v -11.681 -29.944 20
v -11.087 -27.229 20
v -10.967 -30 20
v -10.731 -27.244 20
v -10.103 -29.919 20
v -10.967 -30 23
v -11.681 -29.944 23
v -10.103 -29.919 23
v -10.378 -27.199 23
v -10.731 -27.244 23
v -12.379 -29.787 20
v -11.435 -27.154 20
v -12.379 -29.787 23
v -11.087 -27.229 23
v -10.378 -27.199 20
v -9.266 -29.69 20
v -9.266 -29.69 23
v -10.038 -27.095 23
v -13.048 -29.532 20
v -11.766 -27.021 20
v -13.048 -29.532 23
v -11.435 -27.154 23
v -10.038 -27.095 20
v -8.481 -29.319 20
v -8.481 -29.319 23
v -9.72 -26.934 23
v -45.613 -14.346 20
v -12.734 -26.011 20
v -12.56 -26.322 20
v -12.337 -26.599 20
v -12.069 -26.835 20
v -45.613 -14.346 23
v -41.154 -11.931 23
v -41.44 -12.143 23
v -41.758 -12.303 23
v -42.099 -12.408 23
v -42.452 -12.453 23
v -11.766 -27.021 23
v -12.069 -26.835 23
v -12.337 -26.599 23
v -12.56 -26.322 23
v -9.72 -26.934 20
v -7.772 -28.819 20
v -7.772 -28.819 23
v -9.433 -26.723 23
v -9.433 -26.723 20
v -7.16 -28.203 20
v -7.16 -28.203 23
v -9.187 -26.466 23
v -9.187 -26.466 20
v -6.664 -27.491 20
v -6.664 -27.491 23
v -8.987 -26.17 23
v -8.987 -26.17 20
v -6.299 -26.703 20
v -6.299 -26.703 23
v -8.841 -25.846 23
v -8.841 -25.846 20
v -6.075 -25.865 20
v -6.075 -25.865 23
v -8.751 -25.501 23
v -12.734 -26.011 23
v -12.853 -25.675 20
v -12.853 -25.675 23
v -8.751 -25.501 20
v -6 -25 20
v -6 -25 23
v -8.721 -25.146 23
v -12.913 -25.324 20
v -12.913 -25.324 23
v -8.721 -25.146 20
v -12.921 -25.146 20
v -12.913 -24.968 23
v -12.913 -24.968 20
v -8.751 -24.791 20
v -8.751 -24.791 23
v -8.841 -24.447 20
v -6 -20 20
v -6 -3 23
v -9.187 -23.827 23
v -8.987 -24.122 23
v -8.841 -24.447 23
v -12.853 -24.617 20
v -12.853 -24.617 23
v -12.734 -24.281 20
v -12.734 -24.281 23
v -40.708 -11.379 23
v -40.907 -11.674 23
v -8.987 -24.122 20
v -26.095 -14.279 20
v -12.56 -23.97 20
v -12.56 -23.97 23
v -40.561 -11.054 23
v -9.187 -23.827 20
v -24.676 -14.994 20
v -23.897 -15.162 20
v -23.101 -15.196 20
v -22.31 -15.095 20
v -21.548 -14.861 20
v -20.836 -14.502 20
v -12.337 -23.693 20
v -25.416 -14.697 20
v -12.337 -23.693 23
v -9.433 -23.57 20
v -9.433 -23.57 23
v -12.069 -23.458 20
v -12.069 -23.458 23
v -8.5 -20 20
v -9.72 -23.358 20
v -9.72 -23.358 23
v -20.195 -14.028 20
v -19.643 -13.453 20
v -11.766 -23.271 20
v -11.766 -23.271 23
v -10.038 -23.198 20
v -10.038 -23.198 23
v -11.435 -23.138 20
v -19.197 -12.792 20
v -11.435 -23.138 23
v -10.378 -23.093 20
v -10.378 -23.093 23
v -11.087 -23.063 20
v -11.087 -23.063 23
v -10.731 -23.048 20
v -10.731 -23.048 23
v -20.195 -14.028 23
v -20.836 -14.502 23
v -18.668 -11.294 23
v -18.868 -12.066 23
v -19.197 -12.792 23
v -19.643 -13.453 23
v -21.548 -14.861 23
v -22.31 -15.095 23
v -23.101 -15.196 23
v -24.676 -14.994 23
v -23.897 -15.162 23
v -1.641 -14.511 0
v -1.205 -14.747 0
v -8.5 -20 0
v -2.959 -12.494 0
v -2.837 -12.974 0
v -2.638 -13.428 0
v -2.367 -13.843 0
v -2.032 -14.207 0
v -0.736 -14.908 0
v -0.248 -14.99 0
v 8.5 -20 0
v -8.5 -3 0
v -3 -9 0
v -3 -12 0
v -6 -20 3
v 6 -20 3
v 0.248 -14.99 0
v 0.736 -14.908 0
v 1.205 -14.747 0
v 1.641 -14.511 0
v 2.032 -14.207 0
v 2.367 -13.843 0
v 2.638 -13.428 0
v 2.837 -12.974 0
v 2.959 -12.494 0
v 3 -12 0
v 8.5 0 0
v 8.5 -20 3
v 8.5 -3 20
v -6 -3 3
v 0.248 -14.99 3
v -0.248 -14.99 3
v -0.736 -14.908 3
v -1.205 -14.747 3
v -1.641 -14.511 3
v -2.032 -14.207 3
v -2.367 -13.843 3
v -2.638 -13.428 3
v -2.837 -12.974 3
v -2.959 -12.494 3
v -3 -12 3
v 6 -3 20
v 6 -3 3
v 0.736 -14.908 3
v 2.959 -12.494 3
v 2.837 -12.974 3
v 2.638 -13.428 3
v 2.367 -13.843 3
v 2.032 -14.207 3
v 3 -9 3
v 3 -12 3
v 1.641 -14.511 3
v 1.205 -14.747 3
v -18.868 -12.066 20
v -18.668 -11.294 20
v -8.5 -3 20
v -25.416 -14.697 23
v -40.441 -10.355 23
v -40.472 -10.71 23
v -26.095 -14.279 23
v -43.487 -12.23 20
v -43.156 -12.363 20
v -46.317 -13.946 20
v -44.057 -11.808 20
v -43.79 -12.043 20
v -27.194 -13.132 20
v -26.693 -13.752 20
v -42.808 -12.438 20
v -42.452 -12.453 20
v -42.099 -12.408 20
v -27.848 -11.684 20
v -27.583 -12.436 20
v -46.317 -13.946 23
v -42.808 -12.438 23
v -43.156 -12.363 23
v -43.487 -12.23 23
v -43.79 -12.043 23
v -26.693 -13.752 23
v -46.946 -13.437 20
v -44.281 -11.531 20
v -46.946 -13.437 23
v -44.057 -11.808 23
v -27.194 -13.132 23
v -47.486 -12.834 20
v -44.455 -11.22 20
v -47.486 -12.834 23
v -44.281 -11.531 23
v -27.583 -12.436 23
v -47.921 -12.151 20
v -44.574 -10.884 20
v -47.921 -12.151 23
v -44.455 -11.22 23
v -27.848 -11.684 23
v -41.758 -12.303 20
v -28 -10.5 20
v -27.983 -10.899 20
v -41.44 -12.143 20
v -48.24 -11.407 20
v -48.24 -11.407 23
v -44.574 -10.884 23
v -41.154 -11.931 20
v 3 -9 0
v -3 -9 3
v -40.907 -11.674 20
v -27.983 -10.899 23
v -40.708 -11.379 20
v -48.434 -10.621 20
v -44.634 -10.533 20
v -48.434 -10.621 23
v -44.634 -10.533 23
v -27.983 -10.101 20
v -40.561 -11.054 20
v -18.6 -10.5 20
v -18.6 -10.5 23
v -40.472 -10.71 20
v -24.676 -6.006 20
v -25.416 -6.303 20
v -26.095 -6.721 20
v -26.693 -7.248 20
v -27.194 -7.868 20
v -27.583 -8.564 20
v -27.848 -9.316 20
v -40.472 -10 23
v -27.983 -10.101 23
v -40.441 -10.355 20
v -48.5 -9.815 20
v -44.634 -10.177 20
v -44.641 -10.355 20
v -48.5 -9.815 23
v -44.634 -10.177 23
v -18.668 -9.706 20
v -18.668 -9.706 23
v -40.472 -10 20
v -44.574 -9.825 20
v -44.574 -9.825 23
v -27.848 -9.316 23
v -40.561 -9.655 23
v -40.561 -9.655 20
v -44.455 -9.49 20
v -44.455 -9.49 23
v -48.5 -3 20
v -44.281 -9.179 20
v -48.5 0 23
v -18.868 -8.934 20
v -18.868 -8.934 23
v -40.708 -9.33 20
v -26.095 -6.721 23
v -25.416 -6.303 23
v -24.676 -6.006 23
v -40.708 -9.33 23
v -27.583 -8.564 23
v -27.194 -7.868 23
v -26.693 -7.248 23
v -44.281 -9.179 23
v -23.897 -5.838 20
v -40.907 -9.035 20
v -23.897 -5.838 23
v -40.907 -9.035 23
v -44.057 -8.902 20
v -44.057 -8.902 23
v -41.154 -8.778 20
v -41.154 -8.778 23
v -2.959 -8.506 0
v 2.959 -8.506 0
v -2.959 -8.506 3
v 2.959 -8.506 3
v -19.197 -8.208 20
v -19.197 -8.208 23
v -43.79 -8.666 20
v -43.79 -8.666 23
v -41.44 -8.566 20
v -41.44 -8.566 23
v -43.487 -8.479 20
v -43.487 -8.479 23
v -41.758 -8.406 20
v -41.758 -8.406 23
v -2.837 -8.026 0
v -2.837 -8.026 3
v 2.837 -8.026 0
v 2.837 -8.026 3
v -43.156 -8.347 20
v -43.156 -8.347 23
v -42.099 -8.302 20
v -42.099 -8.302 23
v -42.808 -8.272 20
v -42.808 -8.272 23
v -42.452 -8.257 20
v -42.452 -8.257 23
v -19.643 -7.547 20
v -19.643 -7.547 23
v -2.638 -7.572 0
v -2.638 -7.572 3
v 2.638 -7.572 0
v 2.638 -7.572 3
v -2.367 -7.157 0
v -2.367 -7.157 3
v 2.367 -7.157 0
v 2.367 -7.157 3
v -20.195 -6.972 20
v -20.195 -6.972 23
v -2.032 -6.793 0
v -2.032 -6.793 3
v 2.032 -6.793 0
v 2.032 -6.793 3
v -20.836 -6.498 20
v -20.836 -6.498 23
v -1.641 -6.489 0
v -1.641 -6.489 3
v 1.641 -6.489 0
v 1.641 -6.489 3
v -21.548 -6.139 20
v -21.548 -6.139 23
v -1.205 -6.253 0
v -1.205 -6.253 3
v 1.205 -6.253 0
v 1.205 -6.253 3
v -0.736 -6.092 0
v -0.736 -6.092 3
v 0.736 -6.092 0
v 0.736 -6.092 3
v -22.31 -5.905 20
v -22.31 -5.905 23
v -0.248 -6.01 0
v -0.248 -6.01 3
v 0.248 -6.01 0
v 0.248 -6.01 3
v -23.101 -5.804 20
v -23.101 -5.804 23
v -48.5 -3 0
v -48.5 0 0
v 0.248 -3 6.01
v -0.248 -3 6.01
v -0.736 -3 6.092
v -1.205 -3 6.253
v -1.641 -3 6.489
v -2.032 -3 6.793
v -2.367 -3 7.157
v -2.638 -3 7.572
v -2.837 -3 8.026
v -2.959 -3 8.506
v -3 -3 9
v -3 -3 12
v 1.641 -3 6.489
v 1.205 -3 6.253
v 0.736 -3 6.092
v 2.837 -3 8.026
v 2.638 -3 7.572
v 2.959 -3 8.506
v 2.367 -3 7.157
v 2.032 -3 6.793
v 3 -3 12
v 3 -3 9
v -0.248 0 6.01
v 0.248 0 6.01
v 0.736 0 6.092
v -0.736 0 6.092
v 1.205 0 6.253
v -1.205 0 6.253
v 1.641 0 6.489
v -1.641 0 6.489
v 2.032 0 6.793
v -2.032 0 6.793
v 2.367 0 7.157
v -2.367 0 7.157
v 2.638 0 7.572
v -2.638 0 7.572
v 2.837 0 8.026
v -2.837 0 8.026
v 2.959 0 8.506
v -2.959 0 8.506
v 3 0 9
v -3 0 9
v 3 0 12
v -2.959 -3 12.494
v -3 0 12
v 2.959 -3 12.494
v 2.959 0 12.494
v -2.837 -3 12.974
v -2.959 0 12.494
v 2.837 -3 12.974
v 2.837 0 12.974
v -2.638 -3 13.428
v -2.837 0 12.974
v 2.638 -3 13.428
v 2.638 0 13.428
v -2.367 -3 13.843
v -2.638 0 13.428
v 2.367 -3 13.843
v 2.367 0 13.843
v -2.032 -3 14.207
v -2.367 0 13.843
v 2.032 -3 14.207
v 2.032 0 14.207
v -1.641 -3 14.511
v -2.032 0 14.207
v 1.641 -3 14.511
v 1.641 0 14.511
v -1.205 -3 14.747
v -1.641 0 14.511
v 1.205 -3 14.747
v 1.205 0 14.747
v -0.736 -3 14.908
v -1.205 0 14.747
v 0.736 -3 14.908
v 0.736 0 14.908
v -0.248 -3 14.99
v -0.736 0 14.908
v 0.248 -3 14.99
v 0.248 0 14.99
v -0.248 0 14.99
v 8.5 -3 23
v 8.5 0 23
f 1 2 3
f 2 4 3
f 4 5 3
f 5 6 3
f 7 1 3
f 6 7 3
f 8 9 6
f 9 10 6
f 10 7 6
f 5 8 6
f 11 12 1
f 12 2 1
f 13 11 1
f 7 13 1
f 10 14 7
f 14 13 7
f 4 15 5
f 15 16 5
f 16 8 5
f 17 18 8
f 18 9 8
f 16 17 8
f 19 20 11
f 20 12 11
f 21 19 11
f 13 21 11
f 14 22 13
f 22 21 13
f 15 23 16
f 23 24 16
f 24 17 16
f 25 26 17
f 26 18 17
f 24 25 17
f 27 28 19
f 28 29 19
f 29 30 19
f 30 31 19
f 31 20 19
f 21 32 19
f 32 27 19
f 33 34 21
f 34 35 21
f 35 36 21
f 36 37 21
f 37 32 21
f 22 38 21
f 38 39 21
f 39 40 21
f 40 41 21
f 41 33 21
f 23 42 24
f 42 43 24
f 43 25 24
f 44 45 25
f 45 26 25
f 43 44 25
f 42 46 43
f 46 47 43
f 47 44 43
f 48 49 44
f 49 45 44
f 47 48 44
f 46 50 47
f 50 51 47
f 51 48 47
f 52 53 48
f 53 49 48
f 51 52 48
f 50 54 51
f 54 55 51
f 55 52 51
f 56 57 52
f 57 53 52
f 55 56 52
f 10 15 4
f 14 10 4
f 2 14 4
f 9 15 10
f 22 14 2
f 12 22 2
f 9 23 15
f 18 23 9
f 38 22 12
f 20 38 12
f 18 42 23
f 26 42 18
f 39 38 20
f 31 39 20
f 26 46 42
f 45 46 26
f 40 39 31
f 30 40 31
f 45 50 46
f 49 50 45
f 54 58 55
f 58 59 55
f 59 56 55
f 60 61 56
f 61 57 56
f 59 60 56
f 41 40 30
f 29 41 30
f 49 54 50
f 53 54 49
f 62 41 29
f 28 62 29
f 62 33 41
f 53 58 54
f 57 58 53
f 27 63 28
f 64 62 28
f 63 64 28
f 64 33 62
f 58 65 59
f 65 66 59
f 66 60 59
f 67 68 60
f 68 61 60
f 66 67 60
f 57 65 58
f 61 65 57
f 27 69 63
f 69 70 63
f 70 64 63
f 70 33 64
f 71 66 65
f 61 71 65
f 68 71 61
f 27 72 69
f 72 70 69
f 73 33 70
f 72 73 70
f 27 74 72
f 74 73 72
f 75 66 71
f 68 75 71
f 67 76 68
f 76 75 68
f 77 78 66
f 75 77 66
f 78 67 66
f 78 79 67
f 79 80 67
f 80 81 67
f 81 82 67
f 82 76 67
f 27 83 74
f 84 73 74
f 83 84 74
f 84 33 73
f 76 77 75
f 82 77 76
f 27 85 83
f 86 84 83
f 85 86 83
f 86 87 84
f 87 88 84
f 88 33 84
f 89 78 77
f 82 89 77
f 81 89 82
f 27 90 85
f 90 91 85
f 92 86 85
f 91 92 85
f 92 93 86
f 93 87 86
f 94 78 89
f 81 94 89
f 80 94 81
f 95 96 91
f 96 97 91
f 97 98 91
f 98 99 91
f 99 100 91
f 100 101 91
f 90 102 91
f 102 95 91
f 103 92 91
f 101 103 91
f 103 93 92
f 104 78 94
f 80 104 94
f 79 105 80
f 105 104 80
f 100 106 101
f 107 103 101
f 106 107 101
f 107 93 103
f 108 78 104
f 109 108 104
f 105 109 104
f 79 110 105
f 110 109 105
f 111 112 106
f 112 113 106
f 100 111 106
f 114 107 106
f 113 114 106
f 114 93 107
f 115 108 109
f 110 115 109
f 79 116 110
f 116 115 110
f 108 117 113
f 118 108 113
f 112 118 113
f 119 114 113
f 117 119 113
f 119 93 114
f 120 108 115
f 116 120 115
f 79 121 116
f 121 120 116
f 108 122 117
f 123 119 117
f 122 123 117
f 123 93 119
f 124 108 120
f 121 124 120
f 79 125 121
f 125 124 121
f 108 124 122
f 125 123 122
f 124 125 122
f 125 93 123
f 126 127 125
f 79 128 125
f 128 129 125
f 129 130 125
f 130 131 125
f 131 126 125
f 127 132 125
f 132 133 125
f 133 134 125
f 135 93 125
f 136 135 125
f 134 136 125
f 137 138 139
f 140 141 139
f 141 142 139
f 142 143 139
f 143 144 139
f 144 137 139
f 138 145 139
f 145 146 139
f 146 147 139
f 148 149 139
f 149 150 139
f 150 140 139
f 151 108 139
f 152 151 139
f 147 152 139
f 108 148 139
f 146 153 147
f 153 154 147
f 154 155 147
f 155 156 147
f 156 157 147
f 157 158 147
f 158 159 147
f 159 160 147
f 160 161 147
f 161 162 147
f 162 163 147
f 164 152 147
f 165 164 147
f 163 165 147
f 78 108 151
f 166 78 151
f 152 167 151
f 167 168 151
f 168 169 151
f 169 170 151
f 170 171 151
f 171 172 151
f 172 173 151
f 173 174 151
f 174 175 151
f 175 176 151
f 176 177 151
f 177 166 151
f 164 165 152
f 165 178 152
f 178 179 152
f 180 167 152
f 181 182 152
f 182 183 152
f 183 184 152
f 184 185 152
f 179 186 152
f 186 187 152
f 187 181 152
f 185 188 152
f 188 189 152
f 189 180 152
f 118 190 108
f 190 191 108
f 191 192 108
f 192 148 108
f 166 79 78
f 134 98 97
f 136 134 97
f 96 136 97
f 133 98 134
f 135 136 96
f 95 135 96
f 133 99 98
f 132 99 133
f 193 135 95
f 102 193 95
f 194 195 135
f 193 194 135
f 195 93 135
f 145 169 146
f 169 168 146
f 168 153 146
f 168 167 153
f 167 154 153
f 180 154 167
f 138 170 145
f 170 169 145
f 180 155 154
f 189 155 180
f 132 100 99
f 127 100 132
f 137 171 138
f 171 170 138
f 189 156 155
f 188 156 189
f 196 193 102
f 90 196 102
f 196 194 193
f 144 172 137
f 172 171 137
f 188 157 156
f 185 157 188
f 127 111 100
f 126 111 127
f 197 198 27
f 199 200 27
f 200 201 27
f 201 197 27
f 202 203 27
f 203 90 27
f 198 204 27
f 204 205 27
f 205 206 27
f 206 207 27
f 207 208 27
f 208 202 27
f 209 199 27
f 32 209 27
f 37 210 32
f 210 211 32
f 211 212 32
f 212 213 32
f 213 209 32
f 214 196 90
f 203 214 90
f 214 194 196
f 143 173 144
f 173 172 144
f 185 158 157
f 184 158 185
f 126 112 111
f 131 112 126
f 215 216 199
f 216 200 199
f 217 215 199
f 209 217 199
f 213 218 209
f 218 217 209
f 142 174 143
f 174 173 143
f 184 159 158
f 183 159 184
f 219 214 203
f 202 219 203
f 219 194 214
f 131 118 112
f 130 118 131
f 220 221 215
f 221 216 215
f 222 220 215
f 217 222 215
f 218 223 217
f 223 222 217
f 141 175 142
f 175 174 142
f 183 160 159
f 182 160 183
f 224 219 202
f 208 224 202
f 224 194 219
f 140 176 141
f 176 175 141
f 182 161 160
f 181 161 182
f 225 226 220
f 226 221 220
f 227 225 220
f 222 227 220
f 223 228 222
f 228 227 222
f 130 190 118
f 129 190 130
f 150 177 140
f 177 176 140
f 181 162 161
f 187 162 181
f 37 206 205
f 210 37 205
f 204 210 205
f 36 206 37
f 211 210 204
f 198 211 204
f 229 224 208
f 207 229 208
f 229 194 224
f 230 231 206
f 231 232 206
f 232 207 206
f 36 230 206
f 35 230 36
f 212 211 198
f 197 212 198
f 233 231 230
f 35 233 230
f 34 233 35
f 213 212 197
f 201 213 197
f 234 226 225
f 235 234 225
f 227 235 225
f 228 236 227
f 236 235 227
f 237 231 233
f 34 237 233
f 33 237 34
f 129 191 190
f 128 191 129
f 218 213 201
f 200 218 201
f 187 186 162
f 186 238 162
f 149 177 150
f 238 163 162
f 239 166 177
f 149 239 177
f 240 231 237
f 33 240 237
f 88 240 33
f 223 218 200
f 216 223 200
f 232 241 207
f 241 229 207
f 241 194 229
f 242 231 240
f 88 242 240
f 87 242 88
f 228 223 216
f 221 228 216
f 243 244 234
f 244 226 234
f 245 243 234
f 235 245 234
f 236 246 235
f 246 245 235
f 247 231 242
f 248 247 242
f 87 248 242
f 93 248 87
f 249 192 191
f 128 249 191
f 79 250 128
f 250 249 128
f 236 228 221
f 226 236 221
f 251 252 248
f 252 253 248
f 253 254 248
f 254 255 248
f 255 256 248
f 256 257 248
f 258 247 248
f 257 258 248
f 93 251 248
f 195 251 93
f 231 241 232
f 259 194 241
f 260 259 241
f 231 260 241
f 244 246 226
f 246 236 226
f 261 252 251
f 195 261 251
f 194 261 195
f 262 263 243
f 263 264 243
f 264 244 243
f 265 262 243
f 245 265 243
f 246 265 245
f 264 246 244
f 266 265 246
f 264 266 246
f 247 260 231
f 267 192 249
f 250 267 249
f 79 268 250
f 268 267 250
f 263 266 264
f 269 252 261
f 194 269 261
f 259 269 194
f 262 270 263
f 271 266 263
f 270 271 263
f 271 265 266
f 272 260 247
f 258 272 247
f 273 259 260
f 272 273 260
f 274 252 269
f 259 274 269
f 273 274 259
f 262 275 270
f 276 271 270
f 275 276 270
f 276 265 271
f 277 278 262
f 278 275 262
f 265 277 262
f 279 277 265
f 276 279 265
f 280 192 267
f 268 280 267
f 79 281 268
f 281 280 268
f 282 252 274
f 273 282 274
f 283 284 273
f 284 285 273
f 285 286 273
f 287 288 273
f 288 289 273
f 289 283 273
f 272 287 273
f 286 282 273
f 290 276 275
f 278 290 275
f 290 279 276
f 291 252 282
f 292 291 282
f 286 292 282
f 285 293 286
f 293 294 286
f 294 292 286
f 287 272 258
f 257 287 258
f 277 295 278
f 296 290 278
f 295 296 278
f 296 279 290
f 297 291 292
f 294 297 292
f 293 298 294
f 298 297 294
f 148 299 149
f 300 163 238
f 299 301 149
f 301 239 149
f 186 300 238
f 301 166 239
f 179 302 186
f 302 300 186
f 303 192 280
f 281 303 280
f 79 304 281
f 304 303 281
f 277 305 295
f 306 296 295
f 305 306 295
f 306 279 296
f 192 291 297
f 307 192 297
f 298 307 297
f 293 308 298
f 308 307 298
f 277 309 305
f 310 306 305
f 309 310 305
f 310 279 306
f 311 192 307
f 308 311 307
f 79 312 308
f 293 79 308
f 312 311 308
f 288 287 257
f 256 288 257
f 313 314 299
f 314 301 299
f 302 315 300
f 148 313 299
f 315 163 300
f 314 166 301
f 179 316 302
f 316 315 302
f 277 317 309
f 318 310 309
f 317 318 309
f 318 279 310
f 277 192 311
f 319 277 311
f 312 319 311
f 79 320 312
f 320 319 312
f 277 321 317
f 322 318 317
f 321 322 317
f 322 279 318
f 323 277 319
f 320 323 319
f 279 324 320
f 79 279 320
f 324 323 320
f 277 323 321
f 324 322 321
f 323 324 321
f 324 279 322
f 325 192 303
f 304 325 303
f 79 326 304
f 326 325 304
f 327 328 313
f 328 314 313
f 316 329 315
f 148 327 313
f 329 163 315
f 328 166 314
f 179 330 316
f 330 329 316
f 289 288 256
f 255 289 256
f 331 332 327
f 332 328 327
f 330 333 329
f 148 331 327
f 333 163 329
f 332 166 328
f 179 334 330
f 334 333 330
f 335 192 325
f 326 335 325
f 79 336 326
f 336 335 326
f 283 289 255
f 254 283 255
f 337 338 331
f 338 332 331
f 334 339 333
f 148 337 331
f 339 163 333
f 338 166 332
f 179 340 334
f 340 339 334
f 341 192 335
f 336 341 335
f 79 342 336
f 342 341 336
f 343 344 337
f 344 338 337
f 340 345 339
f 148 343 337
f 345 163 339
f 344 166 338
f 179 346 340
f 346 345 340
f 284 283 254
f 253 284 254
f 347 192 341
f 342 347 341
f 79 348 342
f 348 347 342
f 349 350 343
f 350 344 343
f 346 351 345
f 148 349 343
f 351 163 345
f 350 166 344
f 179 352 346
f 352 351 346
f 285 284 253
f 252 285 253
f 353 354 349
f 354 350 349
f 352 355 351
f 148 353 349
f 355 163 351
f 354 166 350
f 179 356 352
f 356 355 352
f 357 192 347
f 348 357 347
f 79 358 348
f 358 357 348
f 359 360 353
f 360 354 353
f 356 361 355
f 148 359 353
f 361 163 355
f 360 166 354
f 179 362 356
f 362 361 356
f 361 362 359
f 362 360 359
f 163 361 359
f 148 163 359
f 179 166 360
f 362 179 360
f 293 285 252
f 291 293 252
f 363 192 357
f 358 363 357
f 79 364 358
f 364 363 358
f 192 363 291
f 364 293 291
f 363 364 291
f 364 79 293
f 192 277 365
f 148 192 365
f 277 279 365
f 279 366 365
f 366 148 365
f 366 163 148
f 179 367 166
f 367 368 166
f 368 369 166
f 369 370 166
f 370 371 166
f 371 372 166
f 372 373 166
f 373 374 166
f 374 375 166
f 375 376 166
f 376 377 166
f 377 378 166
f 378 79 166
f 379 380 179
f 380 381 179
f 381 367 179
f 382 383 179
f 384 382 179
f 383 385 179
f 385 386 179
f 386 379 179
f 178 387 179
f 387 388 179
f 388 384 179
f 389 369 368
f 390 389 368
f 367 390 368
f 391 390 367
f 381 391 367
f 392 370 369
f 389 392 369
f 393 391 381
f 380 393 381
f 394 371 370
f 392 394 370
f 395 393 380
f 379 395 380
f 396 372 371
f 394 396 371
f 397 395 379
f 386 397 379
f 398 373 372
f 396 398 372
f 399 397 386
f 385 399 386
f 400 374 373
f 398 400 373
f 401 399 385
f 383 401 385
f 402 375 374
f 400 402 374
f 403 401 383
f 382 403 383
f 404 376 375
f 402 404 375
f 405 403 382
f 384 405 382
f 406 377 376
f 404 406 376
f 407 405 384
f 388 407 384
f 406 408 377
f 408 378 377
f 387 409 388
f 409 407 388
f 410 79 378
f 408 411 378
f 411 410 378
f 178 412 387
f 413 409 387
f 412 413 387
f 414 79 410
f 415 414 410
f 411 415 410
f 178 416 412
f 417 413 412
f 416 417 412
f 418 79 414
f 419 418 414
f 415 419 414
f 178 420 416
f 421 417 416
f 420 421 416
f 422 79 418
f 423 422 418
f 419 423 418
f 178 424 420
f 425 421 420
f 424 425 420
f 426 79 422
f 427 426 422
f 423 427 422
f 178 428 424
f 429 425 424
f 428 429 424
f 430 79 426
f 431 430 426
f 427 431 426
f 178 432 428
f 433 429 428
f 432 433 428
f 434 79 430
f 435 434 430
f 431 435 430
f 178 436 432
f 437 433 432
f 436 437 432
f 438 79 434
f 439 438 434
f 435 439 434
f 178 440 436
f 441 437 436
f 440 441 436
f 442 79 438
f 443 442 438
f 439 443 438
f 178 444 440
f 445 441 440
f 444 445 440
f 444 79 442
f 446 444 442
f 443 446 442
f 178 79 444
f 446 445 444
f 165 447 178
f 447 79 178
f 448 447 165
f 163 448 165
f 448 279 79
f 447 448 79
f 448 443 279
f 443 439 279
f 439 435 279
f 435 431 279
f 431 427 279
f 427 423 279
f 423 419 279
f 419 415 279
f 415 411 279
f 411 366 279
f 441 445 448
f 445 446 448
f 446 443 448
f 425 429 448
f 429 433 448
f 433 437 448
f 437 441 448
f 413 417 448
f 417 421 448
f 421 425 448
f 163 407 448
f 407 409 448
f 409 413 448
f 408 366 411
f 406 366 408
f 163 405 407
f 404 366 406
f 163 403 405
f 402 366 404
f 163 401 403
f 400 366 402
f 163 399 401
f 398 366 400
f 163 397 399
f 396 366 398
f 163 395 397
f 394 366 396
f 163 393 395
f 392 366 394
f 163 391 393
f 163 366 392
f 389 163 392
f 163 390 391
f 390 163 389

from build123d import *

# Parameters (mm, degrees)
BOSS_EXTRUDE1_DEPTH      = 8.5
SKETCH2_W                = 17
SKETCH2_H                = 17
CUT_EXTRUDE1_DEPTH       = 6
CUT_EXTRUDE2_REACH       = 29.591
ESBO_O1_W                = 20
ESBO_O1_H                = 3
RESSALTO_EXTRUS_O1_DEPTH = 40
ESBO_O2_W                = 3
ESBO_O2_H                = 30
RESSALTO_EXTRUS_O2_DEPTH = 57
RESSALTO_EXTRUS_O3_REACH = 62.434
ESBO_O3_W                = 2.5
ESBO_O3_H                = 17
ESBO_O5_W                = 14.5
ESBO_O5_H                = 27
CORTE_EXTRUS_O1_DEPTH    = 61.433848132
CORTE_EXTRUS_O2_DEPTH    = 62.491869381
FILETE1_R                = 5
ESBO_O7_R                = 2.099999999
ESBO_O7_R_2              = 4.7
CORTE_EXTRUS_O3_DEPTH    = 62.491817705


with BuildPart() as part:
    # Sketch1 → Boss-Extrude1 (new, symmetric)
    with BuildSketch(Plane(origin=(0, 0, 0), x_dir=(0, 0, -1), z_dir=(1, 0, 0))):
        Polygon((0, 0), (-20, 0), (-20, -3), (-11.5, -11.5), (-3, -20), (0, -20), align=None)
    extrude(amount=BOSS_EXTRUDE1_DEPTH, both=True)

    # Sketch2 → Cut-Extrude1 (cut, symmetric)
    with BuildSketch(Plane(origin=(0, 0, 0), x_dir=(0, 0, -1), z_dir=(1, 0, 0))):
        with Locations((-11.5, -11.5)):
            Rectangle(SKETCH2_W, SKETCH2_H)
    extrude(amount=CUT_EXTRUDE1_DEPTH, both=True, mode=Mode.SUBTRACT)

    # Sketch3 → Cut-Extrude2 (cut, up to next)
    with BuildSketch(Plane.XY.offset(3), mode=Mode.PRIVATE) as cut_extrude2_sk1:
        with BuildLine():
            Line((-3, -9), (-3, -12))
            ThreePointArc((-3, -12), (0, -15), (3, -12))
            Line((3, -12), (3, -9))
            ThreePointArc((3, -9), (0, -6), (-3, -9))
        make_face()
    cut_extrude2_tool1 = extrude(cut_extrude2_sk1.sketch, amount=-CUT_EXTRUDE2_REACH, mode=Mode.PRIVATE) & part.part
    cut_extrude2 = cut_extrude2_tool1.solids().sort_by_distance((0, -10.5, 3))[0]
    add(cut_extrude2, mode=Mode.SUBTRACT)

    # Mirror1: Cut-Extrude2 across plane
    add(cut_extrude2.mirror(Plane(origin=(0, 0, 0), x_dir=(0, -0.7071067811865481, 0.707106781186547), z_dir=(0, 0.7071067811865471, 0.707106781186548))), mode=Mode.SUBTRACT)

    # Esboço1 → Ressalto-extrusão1 (add)
    with BuildSketch(Plane.ZY.offset(8.5)):
        with Locations((10, -1.5)):
            Rectangle(ESBO_O1_W, ESBO_O1_H)
    extrude(amount=RESSALTO_EXTRUS_O1_DEPTH)

    # Esboço2 → Ressalto-extrusão2 (add)
    with BuildSketch(Plane(origin=(8.5, 0, 0), x_dir=(0, 0, -1), z_dir=(1, 0, 0))):
        with Locations((-21.5, -15)):
            Rectangle(ESBO_O2_W, ESBO_O2_H)
    extrude(amount=-RESSALTO_EXTRUS_O2_DEPTH)

    # Ressalto-extrusão3: up to this face of the body (flat: up to its plane)
    ressalto_extrus_o3_end = Plane(part.part.faces().sort_by_distance((7.25, -11.5, 11.5))[0])
    # Esboço3 → Ressalto-extrusão3 (add, up to the picked face)
    with BuildSketch(Plane(origin=(0, 0, 20), x_dir=(-1, 0, 0), z_dir=(0, 0, -1)), mode=Mode.PRIVATE) as ressalto_extrus_o3_sk1:
        with Locations((7.25, -11.5)):
            Rectangle(ESBO_O3_W, ESBO_O3_H)
    ressalto_extrus_o3_tool1 = split(extrude(ressalto_extrus_o3_sk1.sketch, amount=RESSALTO_EXTRUS_O3_REACH, mode=Mode.PRIVATE), bisect_by=ressalto_extrus_o3_end, keep=Keep.BOTH, mode=Mode.PRIVATE)
    add(ressalto_extrus_o3_tool1.solids().sort_by(Axis((-7.25, -11.5, 20), (0, 0, -1)))[0])

    # Esboço5 → Corte-extrusão1 (cut, through all)
    with BuildSketch(Plane(origin=(0, 0, 20), x_dir=(-1, 0, 0), z_dir=(0, 0, -1))):
        with Locations((-1.25, -16.5)):
            Rectangle(ESBO_O5_W, ESBO_O5_H)
    extrude(amount=-CORTE_EXTRUS_O1_DEPTH, mode=Mode.SUBTRACT)

    # Esboço6 → Corte-extrusão2 (cut, through all)
    with BuildSketch(Plane.XY.offset(23)):
        Polygon((-48.5, -13), (-12.043382351, -30), (-48.5, -30), align=None)
    extrude(amount=-CORTE_EXTRUS_O2_DEPTH, mode=Mode.SUBTRACT)

    # Filete1
    # the kernel refuses this fillet: 5 mm, written as the material it takes off along each edge
    with BuildSketch(Plane(origin=(-48.5, -13, 30.96337826), x_dir=(0, 1, 0), z_dir=(0, 0, -1))) as filete1_piece_1:
        with BuildLine():
            CenterArc((FILETE1_R * 0.637070260807, FILETE1_R), FILETE1_R, 205, 65)
            Line((-FILETE1_R * 0.269237526229, FILETE1_R * 0.577381738259), (0, 0))
            Line((0, 0), (FILETE1_R * 0.637070260807, 0))
        make_face()
    extrude(amount=18.92675652, mode=Mode.SUBTRACT)
    with BuildSketch(Plane(origin=(-12.043382351, -30, 25.771183283), x_dir=(-0.9063077870366518, 0.4226182617406957, 0), z_dir=(0, 0, -1))) as filete1_piece_2:
        with BuildLine():
            CenterArc((FILETE1_R * 0.221694662643, FILETE1_R), FILETE1_R, 245, 25)
            Line((-FILETE1_R * 0.200923599098, FILETE1_R * 0.0936922129633), (0, 0))
            Line((0, 0), (FILETE1_R * 0.221694662643, 0))
        make_face()
    extrude(amount=8.542366566, mode=Mode.SUBTRACT)
    with BuildSketch(Plane(origin=(-6, -30, 7.5), x_dir=(-1, 0, 0), z_dir=(0, 0, 1))) as filete1_piece_3:
        with BuildLine():
            CenterArc((FILETE1_R, -FILETE1_R), FILETE1_R, 90, 90)
            Line((0, -FILETE1_R), (0, 0))
            Line((0, 0), (FILETE1_R, 0))
        make_face()
    extrude(amount=28, mode=Mode.SUBTRACT)

    # Esboço7 → Corte-extrusão3 (cut, through all)
    with BuildSketch(Plane.XY.offset(23)):
        with Locations((-42.541332366, -10.354642716)):
            Circle(ESBO_O7_R)
        with Locations((-10.82055982, -25.146281877)):
            Circle(ESBO_O7_R)
        with Locations((-23.3, -10.5)):
            Circle(ESBO_O7_R_2)
    extrude(amount=-CORTE_EXTRUS_O3_DEPTH, mode=Mode.SUBTRACT)


solid = part.part
